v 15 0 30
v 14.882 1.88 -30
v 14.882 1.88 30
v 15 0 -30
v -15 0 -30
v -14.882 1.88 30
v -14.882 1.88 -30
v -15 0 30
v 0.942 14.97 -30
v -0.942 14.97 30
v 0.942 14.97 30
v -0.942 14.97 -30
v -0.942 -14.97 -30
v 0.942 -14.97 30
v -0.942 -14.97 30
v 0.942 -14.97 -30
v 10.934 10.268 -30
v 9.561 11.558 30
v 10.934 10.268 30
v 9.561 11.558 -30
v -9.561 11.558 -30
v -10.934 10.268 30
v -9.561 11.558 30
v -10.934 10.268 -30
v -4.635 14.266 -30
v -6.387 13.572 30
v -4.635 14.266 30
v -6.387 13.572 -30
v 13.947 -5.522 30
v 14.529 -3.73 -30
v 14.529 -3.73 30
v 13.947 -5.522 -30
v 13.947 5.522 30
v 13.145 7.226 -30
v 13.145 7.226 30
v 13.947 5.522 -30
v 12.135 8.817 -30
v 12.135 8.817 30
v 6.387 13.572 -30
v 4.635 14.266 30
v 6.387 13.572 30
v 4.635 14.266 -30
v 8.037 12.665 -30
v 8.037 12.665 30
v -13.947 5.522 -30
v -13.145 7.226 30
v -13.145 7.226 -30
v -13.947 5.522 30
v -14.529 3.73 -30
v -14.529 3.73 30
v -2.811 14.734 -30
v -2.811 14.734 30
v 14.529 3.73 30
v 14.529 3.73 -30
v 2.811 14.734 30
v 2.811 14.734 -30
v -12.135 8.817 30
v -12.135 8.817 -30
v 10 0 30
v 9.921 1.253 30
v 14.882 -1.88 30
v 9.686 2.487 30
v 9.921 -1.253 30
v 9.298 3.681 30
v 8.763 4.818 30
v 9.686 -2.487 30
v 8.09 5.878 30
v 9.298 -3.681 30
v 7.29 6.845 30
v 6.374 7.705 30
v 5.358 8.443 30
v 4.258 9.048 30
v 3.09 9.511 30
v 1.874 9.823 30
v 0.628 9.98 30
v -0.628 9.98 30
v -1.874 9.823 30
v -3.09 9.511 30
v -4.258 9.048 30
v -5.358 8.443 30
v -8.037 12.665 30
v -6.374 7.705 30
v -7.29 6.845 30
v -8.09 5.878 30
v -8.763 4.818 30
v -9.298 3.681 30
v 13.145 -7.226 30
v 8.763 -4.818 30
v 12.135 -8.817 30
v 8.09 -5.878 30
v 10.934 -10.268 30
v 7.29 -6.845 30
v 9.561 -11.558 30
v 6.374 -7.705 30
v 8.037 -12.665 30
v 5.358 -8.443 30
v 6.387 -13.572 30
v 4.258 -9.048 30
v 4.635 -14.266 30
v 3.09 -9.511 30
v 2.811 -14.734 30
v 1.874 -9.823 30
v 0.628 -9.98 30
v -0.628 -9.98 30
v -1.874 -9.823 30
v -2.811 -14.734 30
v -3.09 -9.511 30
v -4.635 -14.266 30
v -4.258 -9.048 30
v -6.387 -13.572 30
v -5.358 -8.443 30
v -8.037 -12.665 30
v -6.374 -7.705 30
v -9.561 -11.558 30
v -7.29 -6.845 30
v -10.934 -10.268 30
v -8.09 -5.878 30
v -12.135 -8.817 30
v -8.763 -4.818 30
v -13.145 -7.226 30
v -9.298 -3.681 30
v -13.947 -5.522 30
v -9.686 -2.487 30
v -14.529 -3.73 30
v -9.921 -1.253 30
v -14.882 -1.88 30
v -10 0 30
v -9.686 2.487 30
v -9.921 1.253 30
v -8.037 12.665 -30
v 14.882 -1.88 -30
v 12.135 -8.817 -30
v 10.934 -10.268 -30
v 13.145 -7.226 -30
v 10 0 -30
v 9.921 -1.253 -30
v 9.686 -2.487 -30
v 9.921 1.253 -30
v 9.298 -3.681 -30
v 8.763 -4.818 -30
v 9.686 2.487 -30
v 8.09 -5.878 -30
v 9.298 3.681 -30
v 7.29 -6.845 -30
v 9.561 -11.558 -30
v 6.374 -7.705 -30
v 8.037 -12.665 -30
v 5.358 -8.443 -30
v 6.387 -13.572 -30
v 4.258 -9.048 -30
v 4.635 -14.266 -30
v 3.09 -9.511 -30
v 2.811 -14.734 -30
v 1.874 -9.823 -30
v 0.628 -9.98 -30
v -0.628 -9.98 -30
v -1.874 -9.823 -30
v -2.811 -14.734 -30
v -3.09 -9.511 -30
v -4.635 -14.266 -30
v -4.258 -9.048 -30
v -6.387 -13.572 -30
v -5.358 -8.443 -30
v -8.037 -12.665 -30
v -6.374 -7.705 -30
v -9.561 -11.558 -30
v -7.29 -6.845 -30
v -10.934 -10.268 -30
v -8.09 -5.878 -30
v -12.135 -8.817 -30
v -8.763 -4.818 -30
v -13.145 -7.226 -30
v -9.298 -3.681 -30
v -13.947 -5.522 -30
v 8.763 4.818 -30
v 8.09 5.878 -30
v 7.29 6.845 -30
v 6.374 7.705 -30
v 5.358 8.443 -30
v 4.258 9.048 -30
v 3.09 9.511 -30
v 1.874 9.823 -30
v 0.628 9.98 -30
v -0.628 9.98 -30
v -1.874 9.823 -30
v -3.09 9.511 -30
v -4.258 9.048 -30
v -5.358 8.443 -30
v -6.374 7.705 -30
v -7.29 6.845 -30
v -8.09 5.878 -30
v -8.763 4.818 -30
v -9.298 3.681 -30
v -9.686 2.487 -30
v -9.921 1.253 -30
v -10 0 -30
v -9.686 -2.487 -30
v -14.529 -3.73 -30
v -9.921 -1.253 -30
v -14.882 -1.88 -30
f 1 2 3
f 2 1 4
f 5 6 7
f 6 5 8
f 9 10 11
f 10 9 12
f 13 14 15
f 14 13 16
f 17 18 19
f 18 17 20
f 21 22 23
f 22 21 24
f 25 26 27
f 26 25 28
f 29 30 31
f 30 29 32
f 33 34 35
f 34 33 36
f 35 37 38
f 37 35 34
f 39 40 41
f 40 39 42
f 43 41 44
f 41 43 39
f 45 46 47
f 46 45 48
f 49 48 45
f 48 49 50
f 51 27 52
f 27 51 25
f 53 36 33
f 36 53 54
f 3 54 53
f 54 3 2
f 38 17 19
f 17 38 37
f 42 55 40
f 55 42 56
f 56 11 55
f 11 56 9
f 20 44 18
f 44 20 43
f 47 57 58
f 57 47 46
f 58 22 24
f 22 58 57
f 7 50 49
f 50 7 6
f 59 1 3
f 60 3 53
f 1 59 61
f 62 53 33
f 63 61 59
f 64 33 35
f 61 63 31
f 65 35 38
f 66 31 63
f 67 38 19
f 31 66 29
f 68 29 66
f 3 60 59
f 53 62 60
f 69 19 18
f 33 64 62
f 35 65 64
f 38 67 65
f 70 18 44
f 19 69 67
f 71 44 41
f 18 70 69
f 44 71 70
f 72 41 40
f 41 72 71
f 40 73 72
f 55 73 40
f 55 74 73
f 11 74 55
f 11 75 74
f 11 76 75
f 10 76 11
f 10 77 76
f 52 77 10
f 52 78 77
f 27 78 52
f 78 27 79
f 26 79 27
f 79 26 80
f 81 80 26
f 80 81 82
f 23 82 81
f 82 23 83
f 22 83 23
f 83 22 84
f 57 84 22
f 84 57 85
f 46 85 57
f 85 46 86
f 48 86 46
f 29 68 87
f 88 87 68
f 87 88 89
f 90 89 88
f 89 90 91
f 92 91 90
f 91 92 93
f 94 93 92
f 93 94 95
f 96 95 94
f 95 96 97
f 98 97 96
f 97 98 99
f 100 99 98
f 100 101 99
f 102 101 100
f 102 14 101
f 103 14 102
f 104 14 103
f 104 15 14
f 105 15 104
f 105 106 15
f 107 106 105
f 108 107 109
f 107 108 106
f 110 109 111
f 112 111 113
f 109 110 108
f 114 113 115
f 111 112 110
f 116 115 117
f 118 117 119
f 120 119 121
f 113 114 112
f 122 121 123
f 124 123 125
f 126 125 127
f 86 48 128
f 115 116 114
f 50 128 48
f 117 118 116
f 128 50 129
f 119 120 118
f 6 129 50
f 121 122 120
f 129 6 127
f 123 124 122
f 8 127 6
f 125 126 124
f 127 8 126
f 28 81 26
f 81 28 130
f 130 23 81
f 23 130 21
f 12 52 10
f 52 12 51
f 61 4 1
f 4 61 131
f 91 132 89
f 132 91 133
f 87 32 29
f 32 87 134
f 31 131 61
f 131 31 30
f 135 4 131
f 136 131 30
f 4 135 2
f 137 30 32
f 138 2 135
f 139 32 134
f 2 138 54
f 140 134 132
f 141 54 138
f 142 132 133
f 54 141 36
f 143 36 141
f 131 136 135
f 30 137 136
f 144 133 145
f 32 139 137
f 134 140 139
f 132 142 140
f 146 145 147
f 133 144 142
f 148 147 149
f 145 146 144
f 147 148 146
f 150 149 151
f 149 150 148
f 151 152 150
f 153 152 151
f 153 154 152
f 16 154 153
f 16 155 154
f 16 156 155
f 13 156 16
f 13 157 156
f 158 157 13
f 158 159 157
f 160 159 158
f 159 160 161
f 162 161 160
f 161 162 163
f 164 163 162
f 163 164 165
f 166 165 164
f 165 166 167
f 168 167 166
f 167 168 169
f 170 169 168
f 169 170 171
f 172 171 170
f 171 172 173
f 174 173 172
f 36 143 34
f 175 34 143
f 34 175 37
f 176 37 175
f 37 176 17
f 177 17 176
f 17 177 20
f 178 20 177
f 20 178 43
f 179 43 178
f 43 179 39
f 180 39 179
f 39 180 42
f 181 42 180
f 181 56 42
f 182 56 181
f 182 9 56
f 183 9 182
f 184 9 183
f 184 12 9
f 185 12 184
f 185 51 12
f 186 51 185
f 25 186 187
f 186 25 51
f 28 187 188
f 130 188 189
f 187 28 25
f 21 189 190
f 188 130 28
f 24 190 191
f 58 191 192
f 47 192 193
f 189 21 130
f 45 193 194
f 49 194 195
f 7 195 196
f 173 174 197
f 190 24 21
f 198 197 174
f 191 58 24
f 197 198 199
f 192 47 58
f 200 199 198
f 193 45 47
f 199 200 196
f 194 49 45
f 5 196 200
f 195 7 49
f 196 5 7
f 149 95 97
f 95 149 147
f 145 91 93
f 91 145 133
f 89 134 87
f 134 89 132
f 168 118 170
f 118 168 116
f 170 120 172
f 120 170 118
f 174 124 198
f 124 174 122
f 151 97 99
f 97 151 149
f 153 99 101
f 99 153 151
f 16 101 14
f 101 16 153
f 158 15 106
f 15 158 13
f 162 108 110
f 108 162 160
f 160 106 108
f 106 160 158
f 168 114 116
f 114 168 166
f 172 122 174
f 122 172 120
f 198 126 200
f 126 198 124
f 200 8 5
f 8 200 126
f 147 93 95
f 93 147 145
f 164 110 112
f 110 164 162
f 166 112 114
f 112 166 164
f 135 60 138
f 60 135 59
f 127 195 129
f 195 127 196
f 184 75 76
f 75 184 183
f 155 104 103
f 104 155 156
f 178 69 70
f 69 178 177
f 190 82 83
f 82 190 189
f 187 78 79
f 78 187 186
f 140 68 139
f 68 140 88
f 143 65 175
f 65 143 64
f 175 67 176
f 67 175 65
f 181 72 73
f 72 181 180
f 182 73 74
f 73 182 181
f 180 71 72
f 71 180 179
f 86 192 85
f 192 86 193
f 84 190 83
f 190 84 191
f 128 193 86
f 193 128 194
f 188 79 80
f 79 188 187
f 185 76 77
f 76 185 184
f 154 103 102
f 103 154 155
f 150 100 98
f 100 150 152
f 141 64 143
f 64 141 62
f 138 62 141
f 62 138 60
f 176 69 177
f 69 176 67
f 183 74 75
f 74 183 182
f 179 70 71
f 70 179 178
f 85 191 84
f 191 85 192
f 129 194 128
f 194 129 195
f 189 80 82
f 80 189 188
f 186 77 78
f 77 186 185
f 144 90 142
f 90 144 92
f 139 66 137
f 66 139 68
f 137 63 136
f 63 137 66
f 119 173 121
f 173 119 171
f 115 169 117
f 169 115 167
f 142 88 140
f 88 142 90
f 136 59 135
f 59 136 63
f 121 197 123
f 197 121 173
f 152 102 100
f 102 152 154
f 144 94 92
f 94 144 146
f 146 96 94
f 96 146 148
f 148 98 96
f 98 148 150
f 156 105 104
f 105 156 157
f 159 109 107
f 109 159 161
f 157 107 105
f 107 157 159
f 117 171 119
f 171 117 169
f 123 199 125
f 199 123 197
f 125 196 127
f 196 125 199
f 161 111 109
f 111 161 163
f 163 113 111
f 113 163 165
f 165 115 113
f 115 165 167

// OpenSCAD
$fn = 50;


difference() {
	union() {
		translate(v = [0, 0, -30.0000000000]) {
			cylinder(h = 60, r = 15.0000000000);
		}
	}
	union() {
		translate(v = [0, 0, -100.0000000000]) {
			cylinder(h = 200, r = 10);
		}
	}
}
